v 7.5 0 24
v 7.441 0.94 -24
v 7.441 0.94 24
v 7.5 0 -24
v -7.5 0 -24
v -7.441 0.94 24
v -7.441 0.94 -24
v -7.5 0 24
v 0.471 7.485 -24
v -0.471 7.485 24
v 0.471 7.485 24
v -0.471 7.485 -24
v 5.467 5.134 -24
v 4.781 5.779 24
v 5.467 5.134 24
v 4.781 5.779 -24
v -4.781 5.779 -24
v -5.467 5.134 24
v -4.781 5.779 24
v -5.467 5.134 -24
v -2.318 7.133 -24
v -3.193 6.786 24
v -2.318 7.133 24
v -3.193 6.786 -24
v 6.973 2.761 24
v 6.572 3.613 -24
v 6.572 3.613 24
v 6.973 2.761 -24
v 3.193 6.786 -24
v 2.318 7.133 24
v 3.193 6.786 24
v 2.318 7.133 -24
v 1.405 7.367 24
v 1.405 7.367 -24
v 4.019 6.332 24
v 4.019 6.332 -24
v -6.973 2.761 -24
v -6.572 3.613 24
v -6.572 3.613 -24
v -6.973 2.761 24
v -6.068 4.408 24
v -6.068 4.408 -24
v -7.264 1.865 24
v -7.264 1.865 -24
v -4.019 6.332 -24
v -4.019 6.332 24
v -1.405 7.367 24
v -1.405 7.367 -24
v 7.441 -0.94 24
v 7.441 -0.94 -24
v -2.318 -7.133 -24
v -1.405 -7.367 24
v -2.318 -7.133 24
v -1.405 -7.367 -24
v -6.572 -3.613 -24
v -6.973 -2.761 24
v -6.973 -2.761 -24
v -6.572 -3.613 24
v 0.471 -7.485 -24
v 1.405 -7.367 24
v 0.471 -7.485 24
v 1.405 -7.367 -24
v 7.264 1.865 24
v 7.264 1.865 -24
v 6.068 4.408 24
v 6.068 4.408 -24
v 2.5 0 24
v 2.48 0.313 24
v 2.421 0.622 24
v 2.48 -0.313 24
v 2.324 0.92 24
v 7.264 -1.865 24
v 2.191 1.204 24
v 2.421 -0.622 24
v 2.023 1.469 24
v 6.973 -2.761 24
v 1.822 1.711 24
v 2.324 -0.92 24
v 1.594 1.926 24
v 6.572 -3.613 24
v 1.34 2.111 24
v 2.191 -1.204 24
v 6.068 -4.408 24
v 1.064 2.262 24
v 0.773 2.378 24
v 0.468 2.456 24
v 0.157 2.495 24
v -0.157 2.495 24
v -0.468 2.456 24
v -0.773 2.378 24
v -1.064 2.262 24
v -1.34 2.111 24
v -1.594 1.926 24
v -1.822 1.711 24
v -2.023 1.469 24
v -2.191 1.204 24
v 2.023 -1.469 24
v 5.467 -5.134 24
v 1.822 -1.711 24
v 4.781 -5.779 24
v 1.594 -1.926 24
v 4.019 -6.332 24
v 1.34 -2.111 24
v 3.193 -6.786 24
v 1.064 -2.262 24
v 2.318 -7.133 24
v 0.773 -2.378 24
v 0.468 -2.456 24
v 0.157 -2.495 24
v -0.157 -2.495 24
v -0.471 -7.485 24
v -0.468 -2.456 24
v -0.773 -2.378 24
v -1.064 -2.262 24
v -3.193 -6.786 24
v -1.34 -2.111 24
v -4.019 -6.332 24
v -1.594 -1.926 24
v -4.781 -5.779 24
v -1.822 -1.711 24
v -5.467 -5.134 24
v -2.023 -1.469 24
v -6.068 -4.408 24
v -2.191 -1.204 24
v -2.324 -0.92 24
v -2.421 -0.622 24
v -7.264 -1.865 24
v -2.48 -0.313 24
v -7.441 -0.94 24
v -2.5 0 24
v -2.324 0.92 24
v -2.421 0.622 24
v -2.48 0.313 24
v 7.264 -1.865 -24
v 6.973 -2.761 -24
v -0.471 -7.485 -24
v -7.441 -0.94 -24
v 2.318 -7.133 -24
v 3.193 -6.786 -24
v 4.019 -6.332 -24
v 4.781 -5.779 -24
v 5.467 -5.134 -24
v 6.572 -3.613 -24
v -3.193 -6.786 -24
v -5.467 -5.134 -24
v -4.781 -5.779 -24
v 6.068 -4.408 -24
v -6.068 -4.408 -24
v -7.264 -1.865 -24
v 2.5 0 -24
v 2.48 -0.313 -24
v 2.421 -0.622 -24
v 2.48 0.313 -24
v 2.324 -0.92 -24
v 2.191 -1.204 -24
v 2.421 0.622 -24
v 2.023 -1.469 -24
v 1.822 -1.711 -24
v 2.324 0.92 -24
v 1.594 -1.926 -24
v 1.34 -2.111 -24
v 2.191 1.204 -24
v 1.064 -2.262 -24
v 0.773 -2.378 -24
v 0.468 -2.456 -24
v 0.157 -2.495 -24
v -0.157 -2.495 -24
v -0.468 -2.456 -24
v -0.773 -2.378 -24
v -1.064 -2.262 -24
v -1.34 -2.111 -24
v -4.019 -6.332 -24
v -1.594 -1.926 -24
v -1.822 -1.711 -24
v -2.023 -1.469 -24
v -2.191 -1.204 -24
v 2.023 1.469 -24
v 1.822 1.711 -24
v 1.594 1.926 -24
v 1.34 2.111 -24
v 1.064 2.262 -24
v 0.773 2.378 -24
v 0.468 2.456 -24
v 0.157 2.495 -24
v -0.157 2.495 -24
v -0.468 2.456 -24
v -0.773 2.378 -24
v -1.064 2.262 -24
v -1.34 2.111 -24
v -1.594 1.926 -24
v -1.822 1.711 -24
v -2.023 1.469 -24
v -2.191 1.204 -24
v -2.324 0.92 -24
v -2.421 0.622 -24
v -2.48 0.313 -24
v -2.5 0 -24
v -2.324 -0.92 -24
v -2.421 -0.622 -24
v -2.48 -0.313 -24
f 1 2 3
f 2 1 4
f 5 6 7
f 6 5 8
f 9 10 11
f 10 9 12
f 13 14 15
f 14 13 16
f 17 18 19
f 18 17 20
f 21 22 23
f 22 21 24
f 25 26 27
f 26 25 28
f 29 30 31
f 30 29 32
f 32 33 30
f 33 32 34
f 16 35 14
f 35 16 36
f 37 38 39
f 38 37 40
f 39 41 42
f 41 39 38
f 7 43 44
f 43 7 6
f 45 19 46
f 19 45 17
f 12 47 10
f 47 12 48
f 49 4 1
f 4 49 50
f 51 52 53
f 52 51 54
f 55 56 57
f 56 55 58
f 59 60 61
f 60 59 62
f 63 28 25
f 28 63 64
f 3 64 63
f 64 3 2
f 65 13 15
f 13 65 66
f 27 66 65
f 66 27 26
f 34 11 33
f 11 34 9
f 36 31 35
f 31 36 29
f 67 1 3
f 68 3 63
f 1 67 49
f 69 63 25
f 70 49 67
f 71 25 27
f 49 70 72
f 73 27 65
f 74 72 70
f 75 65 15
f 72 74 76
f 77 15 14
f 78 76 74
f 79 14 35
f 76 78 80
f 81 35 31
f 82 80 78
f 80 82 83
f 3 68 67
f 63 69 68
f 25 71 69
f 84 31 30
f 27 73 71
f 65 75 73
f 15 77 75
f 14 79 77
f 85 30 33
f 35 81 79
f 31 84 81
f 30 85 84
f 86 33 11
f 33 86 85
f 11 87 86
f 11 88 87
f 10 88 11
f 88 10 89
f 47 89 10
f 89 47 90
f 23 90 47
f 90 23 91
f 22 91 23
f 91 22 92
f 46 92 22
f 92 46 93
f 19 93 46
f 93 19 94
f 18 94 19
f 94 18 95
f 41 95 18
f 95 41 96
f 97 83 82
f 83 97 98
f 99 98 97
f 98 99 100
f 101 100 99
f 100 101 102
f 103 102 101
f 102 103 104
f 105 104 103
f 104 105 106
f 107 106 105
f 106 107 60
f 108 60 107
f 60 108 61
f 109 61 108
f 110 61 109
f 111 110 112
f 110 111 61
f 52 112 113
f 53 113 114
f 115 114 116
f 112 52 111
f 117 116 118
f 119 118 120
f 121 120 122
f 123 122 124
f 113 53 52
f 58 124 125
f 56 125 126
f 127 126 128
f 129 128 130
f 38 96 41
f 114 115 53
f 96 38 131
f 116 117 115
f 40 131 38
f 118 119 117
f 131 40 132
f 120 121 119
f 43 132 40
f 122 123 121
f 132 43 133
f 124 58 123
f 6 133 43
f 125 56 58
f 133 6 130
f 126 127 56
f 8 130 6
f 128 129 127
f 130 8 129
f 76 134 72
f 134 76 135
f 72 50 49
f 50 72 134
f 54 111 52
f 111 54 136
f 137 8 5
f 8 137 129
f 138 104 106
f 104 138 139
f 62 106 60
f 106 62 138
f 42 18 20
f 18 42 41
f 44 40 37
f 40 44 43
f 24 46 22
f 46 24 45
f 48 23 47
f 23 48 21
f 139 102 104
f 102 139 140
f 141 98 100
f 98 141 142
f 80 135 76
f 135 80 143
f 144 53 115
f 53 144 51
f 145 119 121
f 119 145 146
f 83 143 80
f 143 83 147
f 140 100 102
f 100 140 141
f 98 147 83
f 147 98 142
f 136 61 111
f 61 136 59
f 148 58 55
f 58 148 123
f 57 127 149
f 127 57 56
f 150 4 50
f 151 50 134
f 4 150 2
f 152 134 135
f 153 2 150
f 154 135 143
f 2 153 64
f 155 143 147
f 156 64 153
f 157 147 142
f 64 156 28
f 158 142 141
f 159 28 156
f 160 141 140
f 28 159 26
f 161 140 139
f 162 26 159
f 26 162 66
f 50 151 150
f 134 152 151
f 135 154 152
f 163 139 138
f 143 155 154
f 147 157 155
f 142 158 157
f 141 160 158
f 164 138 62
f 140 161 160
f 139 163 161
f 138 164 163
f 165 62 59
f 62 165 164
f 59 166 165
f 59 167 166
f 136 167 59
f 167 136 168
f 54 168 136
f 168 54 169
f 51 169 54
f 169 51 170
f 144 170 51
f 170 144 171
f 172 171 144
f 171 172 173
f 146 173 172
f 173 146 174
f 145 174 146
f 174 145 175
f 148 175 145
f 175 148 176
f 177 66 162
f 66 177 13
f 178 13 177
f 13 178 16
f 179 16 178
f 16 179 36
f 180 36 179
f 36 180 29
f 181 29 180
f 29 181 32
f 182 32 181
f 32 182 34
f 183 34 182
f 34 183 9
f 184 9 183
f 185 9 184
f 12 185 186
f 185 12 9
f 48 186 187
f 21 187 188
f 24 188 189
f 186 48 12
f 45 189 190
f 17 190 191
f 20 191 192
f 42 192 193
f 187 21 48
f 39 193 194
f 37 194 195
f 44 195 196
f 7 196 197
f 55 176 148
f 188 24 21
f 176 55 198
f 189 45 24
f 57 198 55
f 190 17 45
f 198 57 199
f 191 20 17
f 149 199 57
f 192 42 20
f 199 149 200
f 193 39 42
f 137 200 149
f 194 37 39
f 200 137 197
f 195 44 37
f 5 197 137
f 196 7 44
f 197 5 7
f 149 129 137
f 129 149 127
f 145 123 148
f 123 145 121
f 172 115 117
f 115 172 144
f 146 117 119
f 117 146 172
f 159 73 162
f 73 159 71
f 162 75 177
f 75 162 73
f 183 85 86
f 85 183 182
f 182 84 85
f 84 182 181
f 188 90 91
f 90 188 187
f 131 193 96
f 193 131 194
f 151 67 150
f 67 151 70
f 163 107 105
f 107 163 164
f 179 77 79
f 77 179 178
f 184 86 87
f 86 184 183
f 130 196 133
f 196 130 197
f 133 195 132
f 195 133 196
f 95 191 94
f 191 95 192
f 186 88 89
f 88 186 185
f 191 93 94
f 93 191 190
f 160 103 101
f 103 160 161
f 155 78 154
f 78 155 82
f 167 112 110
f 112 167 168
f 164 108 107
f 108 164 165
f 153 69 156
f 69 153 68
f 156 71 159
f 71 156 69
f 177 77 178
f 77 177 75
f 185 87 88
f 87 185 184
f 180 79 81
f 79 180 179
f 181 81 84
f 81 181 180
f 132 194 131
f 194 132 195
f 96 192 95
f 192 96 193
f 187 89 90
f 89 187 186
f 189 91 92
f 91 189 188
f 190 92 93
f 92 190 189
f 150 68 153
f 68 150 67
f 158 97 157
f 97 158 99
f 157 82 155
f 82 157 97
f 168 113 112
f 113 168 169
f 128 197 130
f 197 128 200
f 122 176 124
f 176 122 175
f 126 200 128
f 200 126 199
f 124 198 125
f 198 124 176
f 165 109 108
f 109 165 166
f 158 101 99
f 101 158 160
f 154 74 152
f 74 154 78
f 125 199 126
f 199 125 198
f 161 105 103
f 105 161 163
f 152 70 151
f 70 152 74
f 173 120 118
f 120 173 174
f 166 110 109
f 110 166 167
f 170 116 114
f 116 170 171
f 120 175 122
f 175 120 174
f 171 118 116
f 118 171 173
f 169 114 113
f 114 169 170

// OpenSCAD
$fn = 50;


difference() {
	union() {
		translate(v = [0, 0, -24.0000000000]) {
			cylinder(h = 48, r = 7.5000000000);
		}
	}
	union() {
		translate(v = [0, 0, -100.0000000000]) {
			cylinder(h = 200, r = 2.5000000000);
		}
	}
}
